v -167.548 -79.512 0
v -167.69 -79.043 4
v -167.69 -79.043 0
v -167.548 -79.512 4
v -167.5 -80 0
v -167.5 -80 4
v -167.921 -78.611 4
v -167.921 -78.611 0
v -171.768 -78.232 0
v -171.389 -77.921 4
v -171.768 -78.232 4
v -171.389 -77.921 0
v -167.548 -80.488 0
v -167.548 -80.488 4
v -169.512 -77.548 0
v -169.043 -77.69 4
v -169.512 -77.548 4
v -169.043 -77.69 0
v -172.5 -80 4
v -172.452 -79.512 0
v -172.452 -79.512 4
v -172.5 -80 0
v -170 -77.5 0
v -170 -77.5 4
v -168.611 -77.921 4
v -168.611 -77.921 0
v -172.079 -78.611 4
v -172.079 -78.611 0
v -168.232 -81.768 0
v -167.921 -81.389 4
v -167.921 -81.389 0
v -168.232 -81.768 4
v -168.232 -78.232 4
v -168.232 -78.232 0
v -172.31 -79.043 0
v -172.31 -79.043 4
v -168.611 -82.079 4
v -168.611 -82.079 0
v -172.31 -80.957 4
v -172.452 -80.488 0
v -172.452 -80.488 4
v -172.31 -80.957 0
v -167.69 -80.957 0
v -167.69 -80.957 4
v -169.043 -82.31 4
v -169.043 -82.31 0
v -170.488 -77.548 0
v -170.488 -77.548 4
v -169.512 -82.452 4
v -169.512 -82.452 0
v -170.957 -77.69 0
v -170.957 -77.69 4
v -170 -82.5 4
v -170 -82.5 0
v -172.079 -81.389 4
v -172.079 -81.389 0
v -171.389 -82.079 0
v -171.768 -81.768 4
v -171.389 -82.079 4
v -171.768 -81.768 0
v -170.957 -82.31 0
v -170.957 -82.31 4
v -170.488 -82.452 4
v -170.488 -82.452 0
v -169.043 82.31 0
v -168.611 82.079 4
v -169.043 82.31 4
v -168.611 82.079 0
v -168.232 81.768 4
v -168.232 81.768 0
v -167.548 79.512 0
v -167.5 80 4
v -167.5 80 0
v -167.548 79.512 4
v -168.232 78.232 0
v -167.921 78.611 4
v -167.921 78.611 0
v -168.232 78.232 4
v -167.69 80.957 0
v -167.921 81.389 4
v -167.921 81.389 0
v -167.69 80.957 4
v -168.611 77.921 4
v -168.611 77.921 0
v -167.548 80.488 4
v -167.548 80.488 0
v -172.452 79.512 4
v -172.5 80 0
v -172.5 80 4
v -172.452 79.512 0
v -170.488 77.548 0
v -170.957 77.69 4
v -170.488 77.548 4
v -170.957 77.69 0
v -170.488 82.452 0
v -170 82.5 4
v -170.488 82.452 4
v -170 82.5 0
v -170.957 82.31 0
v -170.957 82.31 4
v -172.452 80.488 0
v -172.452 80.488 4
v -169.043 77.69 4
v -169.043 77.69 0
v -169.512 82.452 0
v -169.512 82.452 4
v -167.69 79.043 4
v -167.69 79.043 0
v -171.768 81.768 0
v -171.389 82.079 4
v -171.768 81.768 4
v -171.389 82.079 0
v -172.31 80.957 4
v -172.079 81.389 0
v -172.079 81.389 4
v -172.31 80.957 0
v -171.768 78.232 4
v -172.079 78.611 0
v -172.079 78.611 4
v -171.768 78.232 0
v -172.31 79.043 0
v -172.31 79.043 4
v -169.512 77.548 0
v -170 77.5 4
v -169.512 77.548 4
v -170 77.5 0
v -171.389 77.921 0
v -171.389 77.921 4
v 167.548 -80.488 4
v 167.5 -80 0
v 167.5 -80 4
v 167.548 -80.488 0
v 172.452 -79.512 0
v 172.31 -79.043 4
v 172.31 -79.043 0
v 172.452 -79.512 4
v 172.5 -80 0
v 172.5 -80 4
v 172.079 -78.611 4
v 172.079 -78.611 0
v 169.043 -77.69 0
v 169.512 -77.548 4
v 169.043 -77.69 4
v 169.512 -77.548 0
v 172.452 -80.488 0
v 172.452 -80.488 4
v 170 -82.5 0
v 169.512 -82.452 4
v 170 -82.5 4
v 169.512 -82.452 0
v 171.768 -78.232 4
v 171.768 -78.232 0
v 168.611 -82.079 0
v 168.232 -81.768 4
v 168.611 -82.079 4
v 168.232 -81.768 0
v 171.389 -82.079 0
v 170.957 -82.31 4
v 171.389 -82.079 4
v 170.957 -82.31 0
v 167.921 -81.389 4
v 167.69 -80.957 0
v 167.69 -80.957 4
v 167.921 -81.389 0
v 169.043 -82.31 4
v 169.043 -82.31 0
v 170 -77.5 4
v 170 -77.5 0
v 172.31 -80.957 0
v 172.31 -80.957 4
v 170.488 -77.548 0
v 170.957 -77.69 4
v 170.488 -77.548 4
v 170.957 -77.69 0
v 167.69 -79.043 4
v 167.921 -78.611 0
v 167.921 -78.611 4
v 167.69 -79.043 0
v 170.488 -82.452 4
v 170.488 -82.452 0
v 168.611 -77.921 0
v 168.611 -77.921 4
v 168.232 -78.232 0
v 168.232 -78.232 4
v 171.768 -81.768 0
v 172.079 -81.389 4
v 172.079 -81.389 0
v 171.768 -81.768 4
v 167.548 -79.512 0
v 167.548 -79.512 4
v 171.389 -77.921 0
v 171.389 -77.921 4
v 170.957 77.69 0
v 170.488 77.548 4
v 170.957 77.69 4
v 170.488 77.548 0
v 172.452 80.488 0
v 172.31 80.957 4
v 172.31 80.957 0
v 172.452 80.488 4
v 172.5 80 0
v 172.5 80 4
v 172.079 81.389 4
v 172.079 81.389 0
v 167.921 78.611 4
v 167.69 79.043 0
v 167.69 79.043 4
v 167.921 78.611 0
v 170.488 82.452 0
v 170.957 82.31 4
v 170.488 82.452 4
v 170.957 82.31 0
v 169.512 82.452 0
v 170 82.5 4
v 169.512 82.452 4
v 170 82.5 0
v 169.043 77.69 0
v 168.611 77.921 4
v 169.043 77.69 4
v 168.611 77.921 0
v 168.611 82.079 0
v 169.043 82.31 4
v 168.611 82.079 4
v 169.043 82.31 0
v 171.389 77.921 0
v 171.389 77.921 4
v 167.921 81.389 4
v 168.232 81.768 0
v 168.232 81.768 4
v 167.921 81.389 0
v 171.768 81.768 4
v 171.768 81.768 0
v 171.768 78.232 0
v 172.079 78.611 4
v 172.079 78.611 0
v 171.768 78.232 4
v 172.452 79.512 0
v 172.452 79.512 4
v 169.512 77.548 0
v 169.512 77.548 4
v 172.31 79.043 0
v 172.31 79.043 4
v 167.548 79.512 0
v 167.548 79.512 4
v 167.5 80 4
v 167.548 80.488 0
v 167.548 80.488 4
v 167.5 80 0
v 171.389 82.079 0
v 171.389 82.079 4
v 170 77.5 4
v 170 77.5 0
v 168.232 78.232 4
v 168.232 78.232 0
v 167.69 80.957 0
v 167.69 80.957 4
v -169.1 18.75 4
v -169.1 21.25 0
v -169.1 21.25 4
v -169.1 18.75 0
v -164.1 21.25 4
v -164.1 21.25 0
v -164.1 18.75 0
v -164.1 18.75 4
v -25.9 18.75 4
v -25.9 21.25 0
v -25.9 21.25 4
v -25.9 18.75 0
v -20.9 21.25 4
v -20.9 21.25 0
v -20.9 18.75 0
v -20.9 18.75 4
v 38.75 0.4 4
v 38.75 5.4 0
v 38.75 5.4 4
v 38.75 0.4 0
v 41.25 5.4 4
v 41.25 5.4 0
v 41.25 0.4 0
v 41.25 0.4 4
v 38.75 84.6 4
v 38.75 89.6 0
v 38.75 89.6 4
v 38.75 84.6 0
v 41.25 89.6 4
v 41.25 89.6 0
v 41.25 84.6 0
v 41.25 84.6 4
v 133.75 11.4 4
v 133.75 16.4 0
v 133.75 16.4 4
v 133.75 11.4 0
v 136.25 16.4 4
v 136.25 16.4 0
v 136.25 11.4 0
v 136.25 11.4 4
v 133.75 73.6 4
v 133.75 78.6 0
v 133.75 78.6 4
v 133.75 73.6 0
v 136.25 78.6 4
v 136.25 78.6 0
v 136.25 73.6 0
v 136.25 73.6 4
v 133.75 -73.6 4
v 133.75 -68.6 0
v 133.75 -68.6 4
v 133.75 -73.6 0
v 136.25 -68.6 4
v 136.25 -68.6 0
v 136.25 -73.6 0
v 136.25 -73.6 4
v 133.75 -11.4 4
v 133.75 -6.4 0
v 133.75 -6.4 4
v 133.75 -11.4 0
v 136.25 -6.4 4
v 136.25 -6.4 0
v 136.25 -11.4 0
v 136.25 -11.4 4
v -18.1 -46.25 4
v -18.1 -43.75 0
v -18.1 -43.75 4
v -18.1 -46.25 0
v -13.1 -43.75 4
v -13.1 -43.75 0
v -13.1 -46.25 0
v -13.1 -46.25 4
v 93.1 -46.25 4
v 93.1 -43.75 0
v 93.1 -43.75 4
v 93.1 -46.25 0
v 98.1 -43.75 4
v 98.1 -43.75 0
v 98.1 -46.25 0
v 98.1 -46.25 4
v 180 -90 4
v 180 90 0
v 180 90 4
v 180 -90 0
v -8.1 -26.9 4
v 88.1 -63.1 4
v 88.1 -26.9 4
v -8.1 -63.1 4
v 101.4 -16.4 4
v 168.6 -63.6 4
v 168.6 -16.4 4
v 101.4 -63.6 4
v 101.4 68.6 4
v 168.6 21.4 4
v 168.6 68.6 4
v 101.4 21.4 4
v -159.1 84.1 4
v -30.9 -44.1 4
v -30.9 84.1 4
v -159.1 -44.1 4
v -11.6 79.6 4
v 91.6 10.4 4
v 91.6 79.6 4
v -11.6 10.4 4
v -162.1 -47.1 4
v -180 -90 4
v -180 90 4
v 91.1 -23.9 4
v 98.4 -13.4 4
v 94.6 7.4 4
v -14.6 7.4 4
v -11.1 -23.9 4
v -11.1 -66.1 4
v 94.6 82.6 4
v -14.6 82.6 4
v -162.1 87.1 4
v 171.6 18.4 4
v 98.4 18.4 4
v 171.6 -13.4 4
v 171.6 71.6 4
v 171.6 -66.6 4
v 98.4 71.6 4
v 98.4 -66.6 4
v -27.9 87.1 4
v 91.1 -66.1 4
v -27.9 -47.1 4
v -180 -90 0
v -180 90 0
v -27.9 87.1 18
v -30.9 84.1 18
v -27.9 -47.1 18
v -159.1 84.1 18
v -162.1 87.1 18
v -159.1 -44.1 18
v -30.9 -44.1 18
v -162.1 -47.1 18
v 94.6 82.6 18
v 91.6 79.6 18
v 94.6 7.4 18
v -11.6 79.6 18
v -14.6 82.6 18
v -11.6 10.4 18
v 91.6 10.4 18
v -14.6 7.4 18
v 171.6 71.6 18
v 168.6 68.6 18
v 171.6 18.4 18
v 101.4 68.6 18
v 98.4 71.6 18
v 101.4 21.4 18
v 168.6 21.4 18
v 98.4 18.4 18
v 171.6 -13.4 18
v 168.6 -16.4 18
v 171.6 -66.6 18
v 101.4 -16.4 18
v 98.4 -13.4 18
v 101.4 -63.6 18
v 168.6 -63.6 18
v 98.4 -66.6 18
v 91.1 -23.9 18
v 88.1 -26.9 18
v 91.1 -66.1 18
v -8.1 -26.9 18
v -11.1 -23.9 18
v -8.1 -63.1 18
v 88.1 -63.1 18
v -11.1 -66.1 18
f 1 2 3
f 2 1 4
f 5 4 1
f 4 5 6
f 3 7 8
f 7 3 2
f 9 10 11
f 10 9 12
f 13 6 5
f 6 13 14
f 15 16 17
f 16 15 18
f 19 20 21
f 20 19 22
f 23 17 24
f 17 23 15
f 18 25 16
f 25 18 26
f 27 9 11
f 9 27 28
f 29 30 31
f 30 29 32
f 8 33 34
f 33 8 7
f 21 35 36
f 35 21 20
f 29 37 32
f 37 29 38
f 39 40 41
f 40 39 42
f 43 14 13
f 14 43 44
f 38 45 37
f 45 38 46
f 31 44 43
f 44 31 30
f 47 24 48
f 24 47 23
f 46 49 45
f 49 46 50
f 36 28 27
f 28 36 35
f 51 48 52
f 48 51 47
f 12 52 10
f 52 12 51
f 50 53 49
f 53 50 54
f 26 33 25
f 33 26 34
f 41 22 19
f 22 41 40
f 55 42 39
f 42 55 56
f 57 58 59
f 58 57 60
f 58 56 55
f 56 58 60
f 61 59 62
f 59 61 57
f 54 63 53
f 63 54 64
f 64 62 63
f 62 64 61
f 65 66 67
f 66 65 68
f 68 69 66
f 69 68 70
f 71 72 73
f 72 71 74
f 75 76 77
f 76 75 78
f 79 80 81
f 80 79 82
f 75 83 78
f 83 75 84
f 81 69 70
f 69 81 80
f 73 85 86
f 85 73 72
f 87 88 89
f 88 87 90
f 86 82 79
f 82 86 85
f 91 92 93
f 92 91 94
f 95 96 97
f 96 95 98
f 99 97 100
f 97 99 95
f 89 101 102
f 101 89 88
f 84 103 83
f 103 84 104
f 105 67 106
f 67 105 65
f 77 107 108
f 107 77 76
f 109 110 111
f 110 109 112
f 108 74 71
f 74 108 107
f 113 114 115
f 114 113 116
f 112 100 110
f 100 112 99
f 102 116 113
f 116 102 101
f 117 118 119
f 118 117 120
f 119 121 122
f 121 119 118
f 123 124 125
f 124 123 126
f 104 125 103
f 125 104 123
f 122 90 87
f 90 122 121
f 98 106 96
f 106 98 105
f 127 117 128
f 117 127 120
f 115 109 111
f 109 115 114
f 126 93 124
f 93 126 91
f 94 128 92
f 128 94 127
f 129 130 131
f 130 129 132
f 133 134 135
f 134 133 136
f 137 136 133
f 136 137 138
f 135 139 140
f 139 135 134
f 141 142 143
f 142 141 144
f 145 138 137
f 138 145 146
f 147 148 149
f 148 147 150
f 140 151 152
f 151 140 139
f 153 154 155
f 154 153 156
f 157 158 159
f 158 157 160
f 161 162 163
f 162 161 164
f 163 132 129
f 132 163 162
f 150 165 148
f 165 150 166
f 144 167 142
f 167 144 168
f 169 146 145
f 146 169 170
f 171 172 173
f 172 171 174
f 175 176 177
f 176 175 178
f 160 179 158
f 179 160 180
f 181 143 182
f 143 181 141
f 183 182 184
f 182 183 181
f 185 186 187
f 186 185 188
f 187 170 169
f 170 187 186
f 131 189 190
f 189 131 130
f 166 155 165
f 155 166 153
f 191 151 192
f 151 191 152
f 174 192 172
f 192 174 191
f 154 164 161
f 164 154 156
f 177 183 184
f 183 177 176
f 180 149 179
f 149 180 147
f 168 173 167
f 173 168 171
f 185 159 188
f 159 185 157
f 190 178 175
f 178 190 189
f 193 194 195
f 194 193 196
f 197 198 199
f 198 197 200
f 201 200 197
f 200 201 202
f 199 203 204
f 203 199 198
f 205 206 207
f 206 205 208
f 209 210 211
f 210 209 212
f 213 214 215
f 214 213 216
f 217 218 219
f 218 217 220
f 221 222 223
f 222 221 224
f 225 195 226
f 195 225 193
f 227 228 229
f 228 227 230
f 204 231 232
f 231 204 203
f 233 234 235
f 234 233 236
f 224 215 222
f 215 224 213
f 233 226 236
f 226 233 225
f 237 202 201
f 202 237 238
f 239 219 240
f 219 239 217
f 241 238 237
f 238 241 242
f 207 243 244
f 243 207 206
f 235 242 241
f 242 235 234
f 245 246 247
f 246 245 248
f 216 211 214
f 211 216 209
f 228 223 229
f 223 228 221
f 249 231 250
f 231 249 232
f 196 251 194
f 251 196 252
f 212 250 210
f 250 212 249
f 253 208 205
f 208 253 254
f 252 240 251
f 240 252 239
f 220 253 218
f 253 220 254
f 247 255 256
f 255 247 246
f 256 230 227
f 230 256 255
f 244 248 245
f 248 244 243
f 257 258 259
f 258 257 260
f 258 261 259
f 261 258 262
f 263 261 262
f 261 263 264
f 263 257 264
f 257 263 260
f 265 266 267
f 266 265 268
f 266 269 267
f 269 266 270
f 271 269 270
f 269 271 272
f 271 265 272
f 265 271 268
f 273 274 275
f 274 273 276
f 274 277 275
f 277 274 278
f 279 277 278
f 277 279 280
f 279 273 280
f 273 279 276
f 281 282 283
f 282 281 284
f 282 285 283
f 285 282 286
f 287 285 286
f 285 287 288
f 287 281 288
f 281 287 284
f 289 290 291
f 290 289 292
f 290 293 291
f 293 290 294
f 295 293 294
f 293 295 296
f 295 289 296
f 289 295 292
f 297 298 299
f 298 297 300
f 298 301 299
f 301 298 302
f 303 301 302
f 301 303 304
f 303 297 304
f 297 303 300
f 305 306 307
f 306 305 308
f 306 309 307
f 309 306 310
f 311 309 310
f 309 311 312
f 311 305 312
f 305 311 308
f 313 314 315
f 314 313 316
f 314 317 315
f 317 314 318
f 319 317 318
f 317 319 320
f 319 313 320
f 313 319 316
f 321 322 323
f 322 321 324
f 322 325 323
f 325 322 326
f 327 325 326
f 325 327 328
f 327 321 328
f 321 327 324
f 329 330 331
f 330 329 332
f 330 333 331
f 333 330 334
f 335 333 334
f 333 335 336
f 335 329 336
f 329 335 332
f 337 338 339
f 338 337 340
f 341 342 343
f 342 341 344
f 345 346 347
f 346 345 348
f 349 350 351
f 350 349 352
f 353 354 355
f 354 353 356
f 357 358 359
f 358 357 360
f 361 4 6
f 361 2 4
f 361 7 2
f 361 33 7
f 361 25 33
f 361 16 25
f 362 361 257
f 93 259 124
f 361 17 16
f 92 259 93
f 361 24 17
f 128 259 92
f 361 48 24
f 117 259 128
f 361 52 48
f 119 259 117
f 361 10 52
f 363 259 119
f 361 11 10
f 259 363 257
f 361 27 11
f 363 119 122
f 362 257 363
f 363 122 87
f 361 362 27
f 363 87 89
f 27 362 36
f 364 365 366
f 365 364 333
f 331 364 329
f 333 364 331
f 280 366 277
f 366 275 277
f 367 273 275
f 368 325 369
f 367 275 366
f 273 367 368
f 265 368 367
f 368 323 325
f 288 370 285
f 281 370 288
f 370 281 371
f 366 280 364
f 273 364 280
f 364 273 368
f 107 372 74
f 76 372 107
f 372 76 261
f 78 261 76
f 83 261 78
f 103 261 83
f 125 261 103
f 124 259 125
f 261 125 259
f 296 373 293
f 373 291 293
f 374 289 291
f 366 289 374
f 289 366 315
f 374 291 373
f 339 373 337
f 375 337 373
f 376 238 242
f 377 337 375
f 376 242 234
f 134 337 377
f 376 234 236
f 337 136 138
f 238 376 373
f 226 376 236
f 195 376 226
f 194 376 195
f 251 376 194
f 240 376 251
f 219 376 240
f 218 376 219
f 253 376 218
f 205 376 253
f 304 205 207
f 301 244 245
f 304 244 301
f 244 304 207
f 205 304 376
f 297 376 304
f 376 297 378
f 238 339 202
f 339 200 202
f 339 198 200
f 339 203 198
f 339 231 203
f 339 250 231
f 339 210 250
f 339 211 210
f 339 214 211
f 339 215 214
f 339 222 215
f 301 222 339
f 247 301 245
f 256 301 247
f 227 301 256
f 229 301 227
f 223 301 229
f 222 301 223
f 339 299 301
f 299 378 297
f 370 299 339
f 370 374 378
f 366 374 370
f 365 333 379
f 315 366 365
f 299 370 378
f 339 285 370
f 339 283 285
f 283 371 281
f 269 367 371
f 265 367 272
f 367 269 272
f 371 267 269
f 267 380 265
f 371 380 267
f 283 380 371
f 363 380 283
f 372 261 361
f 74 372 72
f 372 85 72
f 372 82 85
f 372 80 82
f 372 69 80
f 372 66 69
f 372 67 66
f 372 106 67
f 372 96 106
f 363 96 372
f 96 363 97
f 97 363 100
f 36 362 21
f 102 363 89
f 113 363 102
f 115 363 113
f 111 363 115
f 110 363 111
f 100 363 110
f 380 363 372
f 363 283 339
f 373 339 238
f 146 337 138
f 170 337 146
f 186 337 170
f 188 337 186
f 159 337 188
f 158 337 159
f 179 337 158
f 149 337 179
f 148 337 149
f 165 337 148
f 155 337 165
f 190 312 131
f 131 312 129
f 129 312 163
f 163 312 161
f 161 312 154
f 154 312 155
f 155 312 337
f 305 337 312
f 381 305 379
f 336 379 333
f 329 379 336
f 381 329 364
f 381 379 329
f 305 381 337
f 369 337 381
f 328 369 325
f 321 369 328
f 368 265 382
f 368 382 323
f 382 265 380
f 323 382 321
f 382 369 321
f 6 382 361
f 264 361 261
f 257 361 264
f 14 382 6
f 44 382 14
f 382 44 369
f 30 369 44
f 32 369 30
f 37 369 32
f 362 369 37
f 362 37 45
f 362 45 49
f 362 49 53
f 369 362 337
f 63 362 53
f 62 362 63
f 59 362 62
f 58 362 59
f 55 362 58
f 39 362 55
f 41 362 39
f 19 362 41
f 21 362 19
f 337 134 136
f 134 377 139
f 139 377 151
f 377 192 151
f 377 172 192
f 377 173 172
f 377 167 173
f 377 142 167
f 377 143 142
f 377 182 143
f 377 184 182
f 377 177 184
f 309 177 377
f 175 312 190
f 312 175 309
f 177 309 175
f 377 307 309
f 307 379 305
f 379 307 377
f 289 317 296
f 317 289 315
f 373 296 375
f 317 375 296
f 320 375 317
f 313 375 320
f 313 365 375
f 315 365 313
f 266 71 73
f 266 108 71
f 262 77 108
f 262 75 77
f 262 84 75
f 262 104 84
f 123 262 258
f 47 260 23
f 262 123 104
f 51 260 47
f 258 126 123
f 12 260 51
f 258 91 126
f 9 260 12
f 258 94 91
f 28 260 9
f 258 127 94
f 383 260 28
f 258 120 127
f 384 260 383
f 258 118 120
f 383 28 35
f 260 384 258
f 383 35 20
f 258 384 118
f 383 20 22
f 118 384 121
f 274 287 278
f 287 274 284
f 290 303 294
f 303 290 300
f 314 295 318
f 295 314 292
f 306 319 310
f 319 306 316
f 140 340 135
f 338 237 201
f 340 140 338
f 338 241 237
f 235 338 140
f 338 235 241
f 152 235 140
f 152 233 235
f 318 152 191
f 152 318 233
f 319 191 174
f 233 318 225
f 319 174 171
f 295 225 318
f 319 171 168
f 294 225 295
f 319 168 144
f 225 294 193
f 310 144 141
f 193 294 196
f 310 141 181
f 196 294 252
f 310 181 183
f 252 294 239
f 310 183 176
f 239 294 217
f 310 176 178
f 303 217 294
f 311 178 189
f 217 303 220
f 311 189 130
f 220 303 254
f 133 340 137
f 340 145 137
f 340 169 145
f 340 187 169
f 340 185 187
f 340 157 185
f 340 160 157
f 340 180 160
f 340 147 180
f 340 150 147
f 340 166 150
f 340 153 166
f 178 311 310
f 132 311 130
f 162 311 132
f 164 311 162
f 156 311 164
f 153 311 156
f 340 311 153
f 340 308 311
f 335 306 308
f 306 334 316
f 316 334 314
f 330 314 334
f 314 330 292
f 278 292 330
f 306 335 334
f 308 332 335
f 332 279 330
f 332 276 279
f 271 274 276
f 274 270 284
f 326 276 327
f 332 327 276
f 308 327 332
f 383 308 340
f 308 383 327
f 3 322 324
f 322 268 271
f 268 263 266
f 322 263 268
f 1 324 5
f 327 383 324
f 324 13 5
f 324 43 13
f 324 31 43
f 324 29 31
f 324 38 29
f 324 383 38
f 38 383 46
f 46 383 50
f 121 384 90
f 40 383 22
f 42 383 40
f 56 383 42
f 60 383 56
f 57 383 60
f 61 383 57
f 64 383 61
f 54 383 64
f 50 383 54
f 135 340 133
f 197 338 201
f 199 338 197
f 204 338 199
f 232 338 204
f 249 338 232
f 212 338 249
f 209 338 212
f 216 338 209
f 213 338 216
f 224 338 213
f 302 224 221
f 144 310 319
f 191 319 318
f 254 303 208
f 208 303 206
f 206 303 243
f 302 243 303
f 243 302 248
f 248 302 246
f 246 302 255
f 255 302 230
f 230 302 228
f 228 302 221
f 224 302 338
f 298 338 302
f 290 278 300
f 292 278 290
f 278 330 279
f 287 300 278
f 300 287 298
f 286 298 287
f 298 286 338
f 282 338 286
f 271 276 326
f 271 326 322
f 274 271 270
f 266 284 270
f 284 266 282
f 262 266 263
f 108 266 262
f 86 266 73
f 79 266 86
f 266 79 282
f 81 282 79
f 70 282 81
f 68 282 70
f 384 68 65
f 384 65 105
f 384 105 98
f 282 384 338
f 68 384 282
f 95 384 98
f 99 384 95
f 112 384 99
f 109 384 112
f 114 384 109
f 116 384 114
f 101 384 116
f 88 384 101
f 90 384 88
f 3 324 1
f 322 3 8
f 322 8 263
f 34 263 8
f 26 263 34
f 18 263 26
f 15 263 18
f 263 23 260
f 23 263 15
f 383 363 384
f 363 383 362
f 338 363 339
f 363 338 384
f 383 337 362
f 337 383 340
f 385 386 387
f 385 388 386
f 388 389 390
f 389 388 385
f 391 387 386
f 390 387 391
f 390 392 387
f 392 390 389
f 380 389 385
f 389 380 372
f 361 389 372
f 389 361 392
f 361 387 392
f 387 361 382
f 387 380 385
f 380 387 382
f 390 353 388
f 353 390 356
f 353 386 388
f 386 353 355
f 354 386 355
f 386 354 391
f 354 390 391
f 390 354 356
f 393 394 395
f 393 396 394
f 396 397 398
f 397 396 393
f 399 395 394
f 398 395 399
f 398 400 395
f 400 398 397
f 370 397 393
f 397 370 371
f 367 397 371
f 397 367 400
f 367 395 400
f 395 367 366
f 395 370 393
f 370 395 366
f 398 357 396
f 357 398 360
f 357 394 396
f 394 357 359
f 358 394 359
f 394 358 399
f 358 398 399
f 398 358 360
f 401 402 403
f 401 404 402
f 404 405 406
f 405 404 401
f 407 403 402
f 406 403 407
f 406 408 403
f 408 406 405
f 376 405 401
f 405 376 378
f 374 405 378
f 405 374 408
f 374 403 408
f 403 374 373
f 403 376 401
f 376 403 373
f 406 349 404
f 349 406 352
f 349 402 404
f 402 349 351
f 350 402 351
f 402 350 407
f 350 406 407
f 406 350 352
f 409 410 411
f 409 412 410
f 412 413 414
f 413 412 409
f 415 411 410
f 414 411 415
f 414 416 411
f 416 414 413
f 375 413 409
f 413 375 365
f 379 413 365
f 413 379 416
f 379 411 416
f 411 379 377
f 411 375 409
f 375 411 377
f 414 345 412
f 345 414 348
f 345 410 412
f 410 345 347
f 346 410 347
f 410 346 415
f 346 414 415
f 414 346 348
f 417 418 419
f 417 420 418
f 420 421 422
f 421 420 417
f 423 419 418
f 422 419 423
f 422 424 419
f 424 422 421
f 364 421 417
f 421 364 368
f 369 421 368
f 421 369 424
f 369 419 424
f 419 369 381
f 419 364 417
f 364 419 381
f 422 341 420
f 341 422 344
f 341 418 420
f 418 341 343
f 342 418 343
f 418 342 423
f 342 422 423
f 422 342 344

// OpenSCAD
// file: measurements.scad
// BASTION printed parts — shared measurements
// ============================================
// MEASURE YOUR ACTUAL DEVICES WITH CALIPERS and update the PLACEHOLDER
// values before printing anything. Every part file includes this file.
// All dimensions in mm. Device boxes are [length, width, height].

// -- global fit tuning --
fit     = 0.6;   // pocket clearance per side (0.4 tight .. 0.8 loose)
wall    = 3;     // fence/pocket wall thickness
fence_h = 14;    // how tall the pocket fences stand above the tray

// -- devices (PLACEHOLDERS — measure yours) --
mini_pc = [127, 127, 45];   // typical N100 box; measure your unit
router  = [102,  68, 24];   // GL.iNet — measure your model
buck    = [ 66,  46, 26];   // buck-boost converter incl. heatsink
usb_hub = [ 95,  35, 18];   // powered USB hub

// -- deck tray --
deck = [360, 180, 4];       // tray length, width, base thickness
                            // must fit YOUR case interior — measure first

// -- small parts --
pp_cut   = [16.4, 17.0];    // Powerpole PP15/45 pair cutout — verify against
                            // your snapped-together housings before printing
cable_d  = 7;               // cable bundle diameter for cable_clip
bore_d   = 8;               // gland_plug shaft dia — match the wire size your
                            // spare gland is sized to clamp
// main file
// BASTION electronics deck tray
// Replaces the bought deck plate: base plate with a fitted pocket fence per
// device and zip-tie slots so every device is strapped, not just seated.
// Print flat, ASA or PETG, 4 perimeters, 40% infill. Large-bed printer or
// split the tray in two along x and bolt with a splice plate.

include <measurements.scad>
$fn = 32;

// pocket centers on the tray, [x, y] from tray center — rearrange to taste,
// keep fences clear of each other and the tray edge
pos_mini_pc = [-95,  20];
pos_router  = [ 40,  45];
pos_buck1   = [135,  45];
pos_buck2   = [135, -40];
pos_hub     = [ 40, -45];

corner_hole_d = 5;     // M5 bolts or heavy zip ties into the case frame/foam
slot          = [5, 2.5];  // zip-tie slot size

module fence(dev, at) {
    translate([at[0], at[1], deck[2]])
        linear_extrude(fence_h)
            difference() {
                square([dev[0] + 2*(fit+wall), dev[1] + 2*(fit+wall)], center=true);
                square([dev[0] + 2*fit,        dev[1] + 2*fit],        center=true);
            }
}

// axis=0: slots left/right of the pocket; axis=1: slots above/below
module tie_slots(dev, at, axis=0) {
    for (s = [-1, 1])
        translate(axis == 0
            ? [at[0] + s*(dev[0]/2 + fit + wall + 4.5), at[1], -1]
            : [at[0], at[1] + s*(dev[1]/2 + fit + wall + 4.5), -1])
            linear_extrude(deck[2] + 2)
                square(axis == 0 ? slot : [slot[1], slot[0]], center=true);
}

difference() {
    translate([0, 0, deck[2]/2]) cube(deck, center=true);
    for (sx = [-1, 1], sy = [-1, 1])
        translate([sx*(deck[0]/2 - 10), sy*(deck[1]/2 - 10), -1])
            cylinder(h = deck[2] + 2, d = corner_hole_d);
    tie_slots(mini_pc, pos_mini_pc, 0);
    tie_slots(router,  pos_router,  1);
    tie_slots(buck,    pos_buck1,   1);
    tie_slots(buck,    pos_buck2,   1);
    tie_slots(usb_hub, pos_hub,     0);
}

fence(mini_pc, pos_mini_pc);
fence(router,  pos_router);
fence(buck,    pos_buck1);
fence(buck,    pos_buck2);
fence(usb_hub, pos_hub);
